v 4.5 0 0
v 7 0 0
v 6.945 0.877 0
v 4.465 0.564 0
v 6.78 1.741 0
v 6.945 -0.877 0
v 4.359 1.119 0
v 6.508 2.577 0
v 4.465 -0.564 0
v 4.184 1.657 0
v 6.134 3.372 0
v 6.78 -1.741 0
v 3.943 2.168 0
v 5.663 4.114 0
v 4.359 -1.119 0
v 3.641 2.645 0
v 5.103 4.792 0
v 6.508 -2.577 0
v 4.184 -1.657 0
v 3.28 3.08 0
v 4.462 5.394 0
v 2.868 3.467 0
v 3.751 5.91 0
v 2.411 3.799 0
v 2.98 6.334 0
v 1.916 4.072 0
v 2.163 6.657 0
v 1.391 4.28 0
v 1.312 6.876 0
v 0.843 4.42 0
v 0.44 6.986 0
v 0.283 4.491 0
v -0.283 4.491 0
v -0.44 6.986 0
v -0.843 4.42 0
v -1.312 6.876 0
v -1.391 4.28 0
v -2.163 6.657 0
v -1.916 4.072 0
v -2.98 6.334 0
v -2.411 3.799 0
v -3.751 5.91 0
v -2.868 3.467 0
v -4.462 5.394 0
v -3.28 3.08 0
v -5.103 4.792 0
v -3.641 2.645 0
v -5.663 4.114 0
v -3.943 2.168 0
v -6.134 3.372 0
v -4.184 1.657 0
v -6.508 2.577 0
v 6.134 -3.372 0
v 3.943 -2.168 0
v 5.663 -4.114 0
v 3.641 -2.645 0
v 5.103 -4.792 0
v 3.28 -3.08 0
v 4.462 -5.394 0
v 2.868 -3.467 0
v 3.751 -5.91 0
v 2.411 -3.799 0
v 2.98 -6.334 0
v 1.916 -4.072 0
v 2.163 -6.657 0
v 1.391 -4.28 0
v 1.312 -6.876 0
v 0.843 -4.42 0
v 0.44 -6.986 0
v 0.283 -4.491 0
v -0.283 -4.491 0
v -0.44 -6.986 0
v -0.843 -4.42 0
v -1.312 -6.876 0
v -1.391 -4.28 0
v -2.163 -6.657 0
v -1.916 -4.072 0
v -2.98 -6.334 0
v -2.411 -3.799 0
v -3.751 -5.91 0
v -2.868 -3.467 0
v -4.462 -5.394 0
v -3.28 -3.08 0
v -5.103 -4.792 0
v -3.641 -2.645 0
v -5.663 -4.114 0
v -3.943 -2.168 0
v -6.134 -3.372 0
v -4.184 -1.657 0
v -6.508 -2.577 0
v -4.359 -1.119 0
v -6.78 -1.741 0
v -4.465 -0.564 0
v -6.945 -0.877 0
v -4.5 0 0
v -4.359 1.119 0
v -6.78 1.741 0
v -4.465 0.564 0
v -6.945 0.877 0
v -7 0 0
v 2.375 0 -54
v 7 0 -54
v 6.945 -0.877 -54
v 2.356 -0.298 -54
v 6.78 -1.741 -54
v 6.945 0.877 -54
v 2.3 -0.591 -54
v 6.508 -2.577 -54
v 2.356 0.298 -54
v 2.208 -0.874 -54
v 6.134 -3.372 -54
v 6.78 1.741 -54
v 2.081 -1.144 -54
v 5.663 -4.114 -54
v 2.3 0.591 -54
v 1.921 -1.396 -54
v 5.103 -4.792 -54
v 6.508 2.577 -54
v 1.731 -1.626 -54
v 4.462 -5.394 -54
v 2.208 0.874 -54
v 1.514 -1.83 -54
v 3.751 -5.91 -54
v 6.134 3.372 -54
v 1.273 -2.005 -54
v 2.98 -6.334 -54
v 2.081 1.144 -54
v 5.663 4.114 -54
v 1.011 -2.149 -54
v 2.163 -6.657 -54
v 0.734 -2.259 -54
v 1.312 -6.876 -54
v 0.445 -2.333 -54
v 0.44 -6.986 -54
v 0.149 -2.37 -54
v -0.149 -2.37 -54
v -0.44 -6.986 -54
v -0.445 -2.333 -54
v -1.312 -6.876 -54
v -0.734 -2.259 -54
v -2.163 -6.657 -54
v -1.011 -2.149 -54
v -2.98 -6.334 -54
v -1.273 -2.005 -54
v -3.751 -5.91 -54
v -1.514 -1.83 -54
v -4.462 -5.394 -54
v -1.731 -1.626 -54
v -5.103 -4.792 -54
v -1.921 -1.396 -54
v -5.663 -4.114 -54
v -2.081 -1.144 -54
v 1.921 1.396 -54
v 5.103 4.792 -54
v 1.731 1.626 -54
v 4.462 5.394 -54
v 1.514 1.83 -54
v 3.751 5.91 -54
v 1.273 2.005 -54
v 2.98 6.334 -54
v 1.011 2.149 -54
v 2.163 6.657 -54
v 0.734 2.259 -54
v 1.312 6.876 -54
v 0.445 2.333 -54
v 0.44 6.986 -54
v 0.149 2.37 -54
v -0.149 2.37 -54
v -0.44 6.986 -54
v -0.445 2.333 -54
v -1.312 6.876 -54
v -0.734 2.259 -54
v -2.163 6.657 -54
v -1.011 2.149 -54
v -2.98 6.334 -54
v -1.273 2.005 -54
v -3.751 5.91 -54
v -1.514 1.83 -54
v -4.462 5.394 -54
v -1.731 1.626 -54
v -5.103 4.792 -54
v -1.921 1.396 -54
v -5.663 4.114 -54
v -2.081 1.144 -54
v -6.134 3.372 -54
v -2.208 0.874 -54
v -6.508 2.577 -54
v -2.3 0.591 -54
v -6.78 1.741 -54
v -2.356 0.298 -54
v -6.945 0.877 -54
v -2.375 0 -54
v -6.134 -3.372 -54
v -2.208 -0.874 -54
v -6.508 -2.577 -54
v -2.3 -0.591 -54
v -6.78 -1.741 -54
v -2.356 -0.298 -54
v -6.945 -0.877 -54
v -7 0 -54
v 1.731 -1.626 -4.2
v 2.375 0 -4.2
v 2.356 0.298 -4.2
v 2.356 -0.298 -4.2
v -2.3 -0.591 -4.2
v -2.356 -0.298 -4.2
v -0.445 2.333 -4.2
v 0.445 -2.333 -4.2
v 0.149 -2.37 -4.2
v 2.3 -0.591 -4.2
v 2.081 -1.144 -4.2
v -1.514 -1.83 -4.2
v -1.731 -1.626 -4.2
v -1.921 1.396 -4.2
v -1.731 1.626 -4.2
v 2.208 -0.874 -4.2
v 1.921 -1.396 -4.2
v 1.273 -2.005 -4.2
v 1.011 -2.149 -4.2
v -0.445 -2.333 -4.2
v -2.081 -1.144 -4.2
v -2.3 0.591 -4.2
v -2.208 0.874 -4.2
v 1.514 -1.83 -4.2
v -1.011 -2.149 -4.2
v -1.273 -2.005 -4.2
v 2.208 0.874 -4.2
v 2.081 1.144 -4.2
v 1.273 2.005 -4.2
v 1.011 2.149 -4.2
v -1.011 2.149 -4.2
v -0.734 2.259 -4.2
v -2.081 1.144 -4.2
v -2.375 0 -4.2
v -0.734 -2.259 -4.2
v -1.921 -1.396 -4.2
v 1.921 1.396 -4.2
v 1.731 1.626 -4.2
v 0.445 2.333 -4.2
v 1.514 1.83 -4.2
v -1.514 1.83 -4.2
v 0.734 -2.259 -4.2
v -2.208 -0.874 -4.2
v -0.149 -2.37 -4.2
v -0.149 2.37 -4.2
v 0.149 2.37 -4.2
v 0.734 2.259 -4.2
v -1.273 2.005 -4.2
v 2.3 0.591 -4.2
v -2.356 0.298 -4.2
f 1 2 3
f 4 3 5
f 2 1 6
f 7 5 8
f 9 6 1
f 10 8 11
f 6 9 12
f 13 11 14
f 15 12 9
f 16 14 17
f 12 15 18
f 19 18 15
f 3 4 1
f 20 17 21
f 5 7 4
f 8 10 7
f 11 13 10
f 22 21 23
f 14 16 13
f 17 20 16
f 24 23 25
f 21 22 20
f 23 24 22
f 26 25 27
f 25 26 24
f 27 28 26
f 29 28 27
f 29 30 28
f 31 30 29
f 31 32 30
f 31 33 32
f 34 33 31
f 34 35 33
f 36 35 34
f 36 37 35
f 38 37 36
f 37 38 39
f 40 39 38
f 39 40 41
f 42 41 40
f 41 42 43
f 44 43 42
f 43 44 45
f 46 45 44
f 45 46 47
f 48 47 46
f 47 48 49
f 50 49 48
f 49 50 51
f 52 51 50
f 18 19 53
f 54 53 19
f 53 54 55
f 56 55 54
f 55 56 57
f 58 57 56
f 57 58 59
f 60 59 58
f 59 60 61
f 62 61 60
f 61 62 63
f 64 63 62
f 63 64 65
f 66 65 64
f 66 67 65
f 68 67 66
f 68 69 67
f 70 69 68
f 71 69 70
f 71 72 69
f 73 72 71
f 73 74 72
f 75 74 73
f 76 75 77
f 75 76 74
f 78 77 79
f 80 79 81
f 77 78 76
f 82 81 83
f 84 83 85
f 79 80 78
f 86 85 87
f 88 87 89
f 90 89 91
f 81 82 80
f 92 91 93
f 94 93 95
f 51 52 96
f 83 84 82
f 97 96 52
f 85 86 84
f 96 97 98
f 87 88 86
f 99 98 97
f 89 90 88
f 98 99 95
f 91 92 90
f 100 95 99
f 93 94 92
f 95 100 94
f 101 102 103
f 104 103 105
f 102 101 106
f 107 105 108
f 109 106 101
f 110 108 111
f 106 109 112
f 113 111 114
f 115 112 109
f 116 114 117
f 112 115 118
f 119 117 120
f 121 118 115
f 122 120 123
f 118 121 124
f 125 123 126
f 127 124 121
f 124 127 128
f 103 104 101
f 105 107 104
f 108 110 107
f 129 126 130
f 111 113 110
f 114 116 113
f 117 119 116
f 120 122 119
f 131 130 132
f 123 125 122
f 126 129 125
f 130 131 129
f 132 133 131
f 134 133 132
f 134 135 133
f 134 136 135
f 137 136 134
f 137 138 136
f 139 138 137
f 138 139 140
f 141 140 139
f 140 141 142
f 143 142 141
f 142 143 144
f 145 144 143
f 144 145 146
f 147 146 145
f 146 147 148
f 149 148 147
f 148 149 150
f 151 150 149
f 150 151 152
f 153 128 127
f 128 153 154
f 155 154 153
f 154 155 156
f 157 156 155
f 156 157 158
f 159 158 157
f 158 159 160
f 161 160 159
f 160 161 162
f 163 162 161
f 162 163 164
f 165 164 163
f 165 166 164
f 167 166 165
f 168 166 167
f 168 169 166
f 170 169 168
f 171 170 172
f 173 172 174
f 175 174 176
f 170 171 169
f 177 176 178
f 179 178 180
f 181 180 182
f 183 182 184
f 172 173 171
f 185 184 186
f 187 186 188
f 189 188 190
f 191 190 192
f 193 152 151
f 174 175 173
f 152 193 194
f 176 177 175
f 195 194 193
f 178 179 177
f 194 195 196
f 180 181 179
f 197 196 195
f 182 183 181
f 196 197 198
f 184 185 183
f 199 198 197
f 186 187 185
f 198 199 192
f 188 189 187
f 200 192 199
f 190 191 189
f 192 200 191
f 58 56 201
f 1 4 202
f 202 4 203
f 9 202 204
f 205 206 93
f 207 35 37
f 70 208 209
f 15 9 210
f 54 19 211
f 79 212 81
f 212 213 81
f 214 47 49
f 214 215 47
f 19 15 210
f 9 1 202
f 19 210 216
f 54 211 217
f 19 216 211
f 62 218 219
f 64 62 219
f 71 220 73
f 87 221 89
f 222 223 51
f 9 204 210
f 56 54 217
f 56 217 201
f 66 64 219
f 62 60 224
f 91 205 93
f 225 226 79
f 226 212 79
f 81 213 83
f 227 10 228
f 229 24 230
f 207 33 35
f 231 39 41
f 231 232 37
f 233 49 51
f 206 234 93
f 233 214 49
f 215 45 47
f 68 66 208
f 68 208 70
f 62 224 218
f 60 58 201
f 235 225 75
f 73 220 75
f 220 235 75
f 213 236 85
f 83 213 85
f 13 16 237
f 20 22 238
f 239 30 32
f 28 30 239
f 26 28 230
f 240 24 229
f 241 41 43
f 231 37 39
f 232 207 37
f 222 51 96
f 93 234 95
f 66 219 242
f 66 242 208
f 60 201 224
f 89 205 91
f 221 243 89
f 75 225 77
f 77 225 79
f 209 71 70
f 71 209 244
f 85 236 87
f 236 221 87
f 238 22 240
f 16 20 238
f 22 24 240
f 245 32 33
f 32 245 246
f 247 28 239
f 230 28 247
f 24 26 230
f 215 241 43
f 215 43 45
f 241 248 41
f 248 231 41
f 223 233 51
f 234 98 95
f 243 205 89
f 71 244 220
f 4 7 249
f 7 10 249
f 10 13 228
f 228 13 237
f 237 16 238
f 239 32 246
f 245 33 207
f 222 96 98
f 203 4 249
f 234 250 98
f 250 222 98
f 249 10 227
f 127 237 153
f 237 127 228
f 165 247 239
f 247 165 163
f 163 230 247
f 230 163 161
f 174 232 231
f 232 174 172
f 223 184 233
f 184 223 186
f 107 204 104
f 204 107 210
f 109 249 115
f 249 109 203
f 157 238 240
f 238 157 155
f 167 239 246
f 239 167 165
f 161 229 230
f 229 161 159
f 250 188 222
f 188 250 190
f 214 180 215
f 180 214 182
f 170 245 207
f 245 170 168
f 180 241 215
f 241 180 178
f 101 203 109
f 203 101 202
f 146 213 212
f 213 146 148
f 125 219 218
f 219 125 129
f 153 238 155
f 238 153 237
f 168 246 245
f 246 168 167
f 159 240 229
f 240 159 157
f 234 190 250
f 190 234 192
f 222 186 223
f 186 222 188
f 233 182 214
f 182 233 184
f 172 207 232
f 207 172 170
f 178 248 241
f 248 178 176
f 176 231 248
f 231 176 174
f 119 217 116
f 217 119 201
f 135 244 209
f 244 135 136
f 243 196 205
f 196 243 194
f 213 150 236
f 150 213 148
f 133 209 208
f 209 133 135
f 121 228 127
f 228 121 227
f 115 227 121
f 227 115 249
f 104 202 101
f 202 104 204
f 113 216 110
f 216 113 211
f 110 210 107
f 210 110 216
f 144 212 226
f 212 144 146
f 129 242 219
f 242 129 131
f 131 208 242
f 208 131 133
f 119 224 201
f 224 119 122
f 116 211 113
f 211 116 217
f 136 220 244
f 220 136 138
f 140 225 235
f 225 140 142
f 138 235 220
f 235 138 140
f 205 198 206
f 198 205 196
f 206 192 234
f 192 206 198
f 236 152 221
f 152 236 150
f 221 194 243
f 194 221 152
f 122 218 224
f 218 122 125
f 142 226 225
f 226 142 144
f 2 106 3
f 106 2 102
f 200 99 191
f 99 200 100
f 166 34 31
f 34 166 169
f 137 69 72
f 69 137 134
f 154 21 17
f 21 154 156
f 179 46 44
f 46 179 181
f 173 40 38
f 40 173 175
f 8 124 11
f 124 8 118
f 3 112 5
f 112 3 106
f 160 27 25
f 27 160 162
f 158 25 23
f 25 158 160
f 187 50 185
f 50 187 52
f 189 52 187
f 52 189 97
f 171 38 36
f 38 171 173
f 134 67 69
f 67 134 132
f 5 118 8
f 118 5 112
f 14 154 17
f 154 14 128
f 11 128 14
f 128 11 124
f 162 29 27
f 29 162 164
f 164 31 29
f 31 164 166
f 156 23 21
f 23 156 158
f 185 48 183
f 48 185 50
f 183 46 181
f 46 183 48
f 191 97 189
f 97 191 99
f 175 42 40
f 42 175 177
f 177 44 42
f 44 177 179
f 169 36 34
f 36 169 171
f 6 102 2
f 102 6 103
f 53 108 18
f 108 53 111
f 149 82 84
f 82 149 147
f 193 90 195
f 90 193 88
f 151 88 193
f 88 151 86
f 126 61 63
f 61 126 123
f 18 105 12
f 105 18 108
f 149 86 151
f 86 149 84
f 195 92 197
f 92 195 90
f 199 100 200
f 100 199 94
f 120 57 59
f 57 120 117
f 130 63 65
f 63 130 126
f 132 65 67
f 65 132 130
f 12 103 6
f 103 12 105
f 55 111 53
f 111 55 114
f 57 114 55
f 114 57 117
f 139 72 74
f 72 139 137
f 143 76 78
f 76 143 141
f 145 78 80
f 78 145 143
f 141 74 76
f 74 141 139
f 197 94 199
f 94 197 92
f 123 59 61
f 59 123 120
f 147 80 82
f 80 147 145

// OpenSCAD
$fn = 50;


difference() {
	union() {
		translate(v = [0, 0, -54.0000000000]) {
			cylinder(h = 54, r = 7.0000000000);
		}
	}
	union() {
		translate(v = [0, 0, 0]) {
			rotate(a = [0, 0, 0]) {
				difference() {
					union() {
						#translate(v = [0, 0, -54.0000000000]) {
							cylinder(h = 54, r = 2.2500000000);
						}
						#translate(v = [0, 0, -4.2000000000]) {
							cylinder(h = 4.2000000000, r = 7.0000000000, r1 = 2.3750000000, r2 = 4.5000000000);
						}
						#translate(v = [0, 0, -54.0000000000]) {
							cylinder(h = 54, r = 2.3750000000);
						}
						#translate(v = [0, 0, -54.0000000000]) {
							cylinder(h = 54, r = 2.2500000000);
						}
					}
					union();
				}
			}
		}
	}
}
